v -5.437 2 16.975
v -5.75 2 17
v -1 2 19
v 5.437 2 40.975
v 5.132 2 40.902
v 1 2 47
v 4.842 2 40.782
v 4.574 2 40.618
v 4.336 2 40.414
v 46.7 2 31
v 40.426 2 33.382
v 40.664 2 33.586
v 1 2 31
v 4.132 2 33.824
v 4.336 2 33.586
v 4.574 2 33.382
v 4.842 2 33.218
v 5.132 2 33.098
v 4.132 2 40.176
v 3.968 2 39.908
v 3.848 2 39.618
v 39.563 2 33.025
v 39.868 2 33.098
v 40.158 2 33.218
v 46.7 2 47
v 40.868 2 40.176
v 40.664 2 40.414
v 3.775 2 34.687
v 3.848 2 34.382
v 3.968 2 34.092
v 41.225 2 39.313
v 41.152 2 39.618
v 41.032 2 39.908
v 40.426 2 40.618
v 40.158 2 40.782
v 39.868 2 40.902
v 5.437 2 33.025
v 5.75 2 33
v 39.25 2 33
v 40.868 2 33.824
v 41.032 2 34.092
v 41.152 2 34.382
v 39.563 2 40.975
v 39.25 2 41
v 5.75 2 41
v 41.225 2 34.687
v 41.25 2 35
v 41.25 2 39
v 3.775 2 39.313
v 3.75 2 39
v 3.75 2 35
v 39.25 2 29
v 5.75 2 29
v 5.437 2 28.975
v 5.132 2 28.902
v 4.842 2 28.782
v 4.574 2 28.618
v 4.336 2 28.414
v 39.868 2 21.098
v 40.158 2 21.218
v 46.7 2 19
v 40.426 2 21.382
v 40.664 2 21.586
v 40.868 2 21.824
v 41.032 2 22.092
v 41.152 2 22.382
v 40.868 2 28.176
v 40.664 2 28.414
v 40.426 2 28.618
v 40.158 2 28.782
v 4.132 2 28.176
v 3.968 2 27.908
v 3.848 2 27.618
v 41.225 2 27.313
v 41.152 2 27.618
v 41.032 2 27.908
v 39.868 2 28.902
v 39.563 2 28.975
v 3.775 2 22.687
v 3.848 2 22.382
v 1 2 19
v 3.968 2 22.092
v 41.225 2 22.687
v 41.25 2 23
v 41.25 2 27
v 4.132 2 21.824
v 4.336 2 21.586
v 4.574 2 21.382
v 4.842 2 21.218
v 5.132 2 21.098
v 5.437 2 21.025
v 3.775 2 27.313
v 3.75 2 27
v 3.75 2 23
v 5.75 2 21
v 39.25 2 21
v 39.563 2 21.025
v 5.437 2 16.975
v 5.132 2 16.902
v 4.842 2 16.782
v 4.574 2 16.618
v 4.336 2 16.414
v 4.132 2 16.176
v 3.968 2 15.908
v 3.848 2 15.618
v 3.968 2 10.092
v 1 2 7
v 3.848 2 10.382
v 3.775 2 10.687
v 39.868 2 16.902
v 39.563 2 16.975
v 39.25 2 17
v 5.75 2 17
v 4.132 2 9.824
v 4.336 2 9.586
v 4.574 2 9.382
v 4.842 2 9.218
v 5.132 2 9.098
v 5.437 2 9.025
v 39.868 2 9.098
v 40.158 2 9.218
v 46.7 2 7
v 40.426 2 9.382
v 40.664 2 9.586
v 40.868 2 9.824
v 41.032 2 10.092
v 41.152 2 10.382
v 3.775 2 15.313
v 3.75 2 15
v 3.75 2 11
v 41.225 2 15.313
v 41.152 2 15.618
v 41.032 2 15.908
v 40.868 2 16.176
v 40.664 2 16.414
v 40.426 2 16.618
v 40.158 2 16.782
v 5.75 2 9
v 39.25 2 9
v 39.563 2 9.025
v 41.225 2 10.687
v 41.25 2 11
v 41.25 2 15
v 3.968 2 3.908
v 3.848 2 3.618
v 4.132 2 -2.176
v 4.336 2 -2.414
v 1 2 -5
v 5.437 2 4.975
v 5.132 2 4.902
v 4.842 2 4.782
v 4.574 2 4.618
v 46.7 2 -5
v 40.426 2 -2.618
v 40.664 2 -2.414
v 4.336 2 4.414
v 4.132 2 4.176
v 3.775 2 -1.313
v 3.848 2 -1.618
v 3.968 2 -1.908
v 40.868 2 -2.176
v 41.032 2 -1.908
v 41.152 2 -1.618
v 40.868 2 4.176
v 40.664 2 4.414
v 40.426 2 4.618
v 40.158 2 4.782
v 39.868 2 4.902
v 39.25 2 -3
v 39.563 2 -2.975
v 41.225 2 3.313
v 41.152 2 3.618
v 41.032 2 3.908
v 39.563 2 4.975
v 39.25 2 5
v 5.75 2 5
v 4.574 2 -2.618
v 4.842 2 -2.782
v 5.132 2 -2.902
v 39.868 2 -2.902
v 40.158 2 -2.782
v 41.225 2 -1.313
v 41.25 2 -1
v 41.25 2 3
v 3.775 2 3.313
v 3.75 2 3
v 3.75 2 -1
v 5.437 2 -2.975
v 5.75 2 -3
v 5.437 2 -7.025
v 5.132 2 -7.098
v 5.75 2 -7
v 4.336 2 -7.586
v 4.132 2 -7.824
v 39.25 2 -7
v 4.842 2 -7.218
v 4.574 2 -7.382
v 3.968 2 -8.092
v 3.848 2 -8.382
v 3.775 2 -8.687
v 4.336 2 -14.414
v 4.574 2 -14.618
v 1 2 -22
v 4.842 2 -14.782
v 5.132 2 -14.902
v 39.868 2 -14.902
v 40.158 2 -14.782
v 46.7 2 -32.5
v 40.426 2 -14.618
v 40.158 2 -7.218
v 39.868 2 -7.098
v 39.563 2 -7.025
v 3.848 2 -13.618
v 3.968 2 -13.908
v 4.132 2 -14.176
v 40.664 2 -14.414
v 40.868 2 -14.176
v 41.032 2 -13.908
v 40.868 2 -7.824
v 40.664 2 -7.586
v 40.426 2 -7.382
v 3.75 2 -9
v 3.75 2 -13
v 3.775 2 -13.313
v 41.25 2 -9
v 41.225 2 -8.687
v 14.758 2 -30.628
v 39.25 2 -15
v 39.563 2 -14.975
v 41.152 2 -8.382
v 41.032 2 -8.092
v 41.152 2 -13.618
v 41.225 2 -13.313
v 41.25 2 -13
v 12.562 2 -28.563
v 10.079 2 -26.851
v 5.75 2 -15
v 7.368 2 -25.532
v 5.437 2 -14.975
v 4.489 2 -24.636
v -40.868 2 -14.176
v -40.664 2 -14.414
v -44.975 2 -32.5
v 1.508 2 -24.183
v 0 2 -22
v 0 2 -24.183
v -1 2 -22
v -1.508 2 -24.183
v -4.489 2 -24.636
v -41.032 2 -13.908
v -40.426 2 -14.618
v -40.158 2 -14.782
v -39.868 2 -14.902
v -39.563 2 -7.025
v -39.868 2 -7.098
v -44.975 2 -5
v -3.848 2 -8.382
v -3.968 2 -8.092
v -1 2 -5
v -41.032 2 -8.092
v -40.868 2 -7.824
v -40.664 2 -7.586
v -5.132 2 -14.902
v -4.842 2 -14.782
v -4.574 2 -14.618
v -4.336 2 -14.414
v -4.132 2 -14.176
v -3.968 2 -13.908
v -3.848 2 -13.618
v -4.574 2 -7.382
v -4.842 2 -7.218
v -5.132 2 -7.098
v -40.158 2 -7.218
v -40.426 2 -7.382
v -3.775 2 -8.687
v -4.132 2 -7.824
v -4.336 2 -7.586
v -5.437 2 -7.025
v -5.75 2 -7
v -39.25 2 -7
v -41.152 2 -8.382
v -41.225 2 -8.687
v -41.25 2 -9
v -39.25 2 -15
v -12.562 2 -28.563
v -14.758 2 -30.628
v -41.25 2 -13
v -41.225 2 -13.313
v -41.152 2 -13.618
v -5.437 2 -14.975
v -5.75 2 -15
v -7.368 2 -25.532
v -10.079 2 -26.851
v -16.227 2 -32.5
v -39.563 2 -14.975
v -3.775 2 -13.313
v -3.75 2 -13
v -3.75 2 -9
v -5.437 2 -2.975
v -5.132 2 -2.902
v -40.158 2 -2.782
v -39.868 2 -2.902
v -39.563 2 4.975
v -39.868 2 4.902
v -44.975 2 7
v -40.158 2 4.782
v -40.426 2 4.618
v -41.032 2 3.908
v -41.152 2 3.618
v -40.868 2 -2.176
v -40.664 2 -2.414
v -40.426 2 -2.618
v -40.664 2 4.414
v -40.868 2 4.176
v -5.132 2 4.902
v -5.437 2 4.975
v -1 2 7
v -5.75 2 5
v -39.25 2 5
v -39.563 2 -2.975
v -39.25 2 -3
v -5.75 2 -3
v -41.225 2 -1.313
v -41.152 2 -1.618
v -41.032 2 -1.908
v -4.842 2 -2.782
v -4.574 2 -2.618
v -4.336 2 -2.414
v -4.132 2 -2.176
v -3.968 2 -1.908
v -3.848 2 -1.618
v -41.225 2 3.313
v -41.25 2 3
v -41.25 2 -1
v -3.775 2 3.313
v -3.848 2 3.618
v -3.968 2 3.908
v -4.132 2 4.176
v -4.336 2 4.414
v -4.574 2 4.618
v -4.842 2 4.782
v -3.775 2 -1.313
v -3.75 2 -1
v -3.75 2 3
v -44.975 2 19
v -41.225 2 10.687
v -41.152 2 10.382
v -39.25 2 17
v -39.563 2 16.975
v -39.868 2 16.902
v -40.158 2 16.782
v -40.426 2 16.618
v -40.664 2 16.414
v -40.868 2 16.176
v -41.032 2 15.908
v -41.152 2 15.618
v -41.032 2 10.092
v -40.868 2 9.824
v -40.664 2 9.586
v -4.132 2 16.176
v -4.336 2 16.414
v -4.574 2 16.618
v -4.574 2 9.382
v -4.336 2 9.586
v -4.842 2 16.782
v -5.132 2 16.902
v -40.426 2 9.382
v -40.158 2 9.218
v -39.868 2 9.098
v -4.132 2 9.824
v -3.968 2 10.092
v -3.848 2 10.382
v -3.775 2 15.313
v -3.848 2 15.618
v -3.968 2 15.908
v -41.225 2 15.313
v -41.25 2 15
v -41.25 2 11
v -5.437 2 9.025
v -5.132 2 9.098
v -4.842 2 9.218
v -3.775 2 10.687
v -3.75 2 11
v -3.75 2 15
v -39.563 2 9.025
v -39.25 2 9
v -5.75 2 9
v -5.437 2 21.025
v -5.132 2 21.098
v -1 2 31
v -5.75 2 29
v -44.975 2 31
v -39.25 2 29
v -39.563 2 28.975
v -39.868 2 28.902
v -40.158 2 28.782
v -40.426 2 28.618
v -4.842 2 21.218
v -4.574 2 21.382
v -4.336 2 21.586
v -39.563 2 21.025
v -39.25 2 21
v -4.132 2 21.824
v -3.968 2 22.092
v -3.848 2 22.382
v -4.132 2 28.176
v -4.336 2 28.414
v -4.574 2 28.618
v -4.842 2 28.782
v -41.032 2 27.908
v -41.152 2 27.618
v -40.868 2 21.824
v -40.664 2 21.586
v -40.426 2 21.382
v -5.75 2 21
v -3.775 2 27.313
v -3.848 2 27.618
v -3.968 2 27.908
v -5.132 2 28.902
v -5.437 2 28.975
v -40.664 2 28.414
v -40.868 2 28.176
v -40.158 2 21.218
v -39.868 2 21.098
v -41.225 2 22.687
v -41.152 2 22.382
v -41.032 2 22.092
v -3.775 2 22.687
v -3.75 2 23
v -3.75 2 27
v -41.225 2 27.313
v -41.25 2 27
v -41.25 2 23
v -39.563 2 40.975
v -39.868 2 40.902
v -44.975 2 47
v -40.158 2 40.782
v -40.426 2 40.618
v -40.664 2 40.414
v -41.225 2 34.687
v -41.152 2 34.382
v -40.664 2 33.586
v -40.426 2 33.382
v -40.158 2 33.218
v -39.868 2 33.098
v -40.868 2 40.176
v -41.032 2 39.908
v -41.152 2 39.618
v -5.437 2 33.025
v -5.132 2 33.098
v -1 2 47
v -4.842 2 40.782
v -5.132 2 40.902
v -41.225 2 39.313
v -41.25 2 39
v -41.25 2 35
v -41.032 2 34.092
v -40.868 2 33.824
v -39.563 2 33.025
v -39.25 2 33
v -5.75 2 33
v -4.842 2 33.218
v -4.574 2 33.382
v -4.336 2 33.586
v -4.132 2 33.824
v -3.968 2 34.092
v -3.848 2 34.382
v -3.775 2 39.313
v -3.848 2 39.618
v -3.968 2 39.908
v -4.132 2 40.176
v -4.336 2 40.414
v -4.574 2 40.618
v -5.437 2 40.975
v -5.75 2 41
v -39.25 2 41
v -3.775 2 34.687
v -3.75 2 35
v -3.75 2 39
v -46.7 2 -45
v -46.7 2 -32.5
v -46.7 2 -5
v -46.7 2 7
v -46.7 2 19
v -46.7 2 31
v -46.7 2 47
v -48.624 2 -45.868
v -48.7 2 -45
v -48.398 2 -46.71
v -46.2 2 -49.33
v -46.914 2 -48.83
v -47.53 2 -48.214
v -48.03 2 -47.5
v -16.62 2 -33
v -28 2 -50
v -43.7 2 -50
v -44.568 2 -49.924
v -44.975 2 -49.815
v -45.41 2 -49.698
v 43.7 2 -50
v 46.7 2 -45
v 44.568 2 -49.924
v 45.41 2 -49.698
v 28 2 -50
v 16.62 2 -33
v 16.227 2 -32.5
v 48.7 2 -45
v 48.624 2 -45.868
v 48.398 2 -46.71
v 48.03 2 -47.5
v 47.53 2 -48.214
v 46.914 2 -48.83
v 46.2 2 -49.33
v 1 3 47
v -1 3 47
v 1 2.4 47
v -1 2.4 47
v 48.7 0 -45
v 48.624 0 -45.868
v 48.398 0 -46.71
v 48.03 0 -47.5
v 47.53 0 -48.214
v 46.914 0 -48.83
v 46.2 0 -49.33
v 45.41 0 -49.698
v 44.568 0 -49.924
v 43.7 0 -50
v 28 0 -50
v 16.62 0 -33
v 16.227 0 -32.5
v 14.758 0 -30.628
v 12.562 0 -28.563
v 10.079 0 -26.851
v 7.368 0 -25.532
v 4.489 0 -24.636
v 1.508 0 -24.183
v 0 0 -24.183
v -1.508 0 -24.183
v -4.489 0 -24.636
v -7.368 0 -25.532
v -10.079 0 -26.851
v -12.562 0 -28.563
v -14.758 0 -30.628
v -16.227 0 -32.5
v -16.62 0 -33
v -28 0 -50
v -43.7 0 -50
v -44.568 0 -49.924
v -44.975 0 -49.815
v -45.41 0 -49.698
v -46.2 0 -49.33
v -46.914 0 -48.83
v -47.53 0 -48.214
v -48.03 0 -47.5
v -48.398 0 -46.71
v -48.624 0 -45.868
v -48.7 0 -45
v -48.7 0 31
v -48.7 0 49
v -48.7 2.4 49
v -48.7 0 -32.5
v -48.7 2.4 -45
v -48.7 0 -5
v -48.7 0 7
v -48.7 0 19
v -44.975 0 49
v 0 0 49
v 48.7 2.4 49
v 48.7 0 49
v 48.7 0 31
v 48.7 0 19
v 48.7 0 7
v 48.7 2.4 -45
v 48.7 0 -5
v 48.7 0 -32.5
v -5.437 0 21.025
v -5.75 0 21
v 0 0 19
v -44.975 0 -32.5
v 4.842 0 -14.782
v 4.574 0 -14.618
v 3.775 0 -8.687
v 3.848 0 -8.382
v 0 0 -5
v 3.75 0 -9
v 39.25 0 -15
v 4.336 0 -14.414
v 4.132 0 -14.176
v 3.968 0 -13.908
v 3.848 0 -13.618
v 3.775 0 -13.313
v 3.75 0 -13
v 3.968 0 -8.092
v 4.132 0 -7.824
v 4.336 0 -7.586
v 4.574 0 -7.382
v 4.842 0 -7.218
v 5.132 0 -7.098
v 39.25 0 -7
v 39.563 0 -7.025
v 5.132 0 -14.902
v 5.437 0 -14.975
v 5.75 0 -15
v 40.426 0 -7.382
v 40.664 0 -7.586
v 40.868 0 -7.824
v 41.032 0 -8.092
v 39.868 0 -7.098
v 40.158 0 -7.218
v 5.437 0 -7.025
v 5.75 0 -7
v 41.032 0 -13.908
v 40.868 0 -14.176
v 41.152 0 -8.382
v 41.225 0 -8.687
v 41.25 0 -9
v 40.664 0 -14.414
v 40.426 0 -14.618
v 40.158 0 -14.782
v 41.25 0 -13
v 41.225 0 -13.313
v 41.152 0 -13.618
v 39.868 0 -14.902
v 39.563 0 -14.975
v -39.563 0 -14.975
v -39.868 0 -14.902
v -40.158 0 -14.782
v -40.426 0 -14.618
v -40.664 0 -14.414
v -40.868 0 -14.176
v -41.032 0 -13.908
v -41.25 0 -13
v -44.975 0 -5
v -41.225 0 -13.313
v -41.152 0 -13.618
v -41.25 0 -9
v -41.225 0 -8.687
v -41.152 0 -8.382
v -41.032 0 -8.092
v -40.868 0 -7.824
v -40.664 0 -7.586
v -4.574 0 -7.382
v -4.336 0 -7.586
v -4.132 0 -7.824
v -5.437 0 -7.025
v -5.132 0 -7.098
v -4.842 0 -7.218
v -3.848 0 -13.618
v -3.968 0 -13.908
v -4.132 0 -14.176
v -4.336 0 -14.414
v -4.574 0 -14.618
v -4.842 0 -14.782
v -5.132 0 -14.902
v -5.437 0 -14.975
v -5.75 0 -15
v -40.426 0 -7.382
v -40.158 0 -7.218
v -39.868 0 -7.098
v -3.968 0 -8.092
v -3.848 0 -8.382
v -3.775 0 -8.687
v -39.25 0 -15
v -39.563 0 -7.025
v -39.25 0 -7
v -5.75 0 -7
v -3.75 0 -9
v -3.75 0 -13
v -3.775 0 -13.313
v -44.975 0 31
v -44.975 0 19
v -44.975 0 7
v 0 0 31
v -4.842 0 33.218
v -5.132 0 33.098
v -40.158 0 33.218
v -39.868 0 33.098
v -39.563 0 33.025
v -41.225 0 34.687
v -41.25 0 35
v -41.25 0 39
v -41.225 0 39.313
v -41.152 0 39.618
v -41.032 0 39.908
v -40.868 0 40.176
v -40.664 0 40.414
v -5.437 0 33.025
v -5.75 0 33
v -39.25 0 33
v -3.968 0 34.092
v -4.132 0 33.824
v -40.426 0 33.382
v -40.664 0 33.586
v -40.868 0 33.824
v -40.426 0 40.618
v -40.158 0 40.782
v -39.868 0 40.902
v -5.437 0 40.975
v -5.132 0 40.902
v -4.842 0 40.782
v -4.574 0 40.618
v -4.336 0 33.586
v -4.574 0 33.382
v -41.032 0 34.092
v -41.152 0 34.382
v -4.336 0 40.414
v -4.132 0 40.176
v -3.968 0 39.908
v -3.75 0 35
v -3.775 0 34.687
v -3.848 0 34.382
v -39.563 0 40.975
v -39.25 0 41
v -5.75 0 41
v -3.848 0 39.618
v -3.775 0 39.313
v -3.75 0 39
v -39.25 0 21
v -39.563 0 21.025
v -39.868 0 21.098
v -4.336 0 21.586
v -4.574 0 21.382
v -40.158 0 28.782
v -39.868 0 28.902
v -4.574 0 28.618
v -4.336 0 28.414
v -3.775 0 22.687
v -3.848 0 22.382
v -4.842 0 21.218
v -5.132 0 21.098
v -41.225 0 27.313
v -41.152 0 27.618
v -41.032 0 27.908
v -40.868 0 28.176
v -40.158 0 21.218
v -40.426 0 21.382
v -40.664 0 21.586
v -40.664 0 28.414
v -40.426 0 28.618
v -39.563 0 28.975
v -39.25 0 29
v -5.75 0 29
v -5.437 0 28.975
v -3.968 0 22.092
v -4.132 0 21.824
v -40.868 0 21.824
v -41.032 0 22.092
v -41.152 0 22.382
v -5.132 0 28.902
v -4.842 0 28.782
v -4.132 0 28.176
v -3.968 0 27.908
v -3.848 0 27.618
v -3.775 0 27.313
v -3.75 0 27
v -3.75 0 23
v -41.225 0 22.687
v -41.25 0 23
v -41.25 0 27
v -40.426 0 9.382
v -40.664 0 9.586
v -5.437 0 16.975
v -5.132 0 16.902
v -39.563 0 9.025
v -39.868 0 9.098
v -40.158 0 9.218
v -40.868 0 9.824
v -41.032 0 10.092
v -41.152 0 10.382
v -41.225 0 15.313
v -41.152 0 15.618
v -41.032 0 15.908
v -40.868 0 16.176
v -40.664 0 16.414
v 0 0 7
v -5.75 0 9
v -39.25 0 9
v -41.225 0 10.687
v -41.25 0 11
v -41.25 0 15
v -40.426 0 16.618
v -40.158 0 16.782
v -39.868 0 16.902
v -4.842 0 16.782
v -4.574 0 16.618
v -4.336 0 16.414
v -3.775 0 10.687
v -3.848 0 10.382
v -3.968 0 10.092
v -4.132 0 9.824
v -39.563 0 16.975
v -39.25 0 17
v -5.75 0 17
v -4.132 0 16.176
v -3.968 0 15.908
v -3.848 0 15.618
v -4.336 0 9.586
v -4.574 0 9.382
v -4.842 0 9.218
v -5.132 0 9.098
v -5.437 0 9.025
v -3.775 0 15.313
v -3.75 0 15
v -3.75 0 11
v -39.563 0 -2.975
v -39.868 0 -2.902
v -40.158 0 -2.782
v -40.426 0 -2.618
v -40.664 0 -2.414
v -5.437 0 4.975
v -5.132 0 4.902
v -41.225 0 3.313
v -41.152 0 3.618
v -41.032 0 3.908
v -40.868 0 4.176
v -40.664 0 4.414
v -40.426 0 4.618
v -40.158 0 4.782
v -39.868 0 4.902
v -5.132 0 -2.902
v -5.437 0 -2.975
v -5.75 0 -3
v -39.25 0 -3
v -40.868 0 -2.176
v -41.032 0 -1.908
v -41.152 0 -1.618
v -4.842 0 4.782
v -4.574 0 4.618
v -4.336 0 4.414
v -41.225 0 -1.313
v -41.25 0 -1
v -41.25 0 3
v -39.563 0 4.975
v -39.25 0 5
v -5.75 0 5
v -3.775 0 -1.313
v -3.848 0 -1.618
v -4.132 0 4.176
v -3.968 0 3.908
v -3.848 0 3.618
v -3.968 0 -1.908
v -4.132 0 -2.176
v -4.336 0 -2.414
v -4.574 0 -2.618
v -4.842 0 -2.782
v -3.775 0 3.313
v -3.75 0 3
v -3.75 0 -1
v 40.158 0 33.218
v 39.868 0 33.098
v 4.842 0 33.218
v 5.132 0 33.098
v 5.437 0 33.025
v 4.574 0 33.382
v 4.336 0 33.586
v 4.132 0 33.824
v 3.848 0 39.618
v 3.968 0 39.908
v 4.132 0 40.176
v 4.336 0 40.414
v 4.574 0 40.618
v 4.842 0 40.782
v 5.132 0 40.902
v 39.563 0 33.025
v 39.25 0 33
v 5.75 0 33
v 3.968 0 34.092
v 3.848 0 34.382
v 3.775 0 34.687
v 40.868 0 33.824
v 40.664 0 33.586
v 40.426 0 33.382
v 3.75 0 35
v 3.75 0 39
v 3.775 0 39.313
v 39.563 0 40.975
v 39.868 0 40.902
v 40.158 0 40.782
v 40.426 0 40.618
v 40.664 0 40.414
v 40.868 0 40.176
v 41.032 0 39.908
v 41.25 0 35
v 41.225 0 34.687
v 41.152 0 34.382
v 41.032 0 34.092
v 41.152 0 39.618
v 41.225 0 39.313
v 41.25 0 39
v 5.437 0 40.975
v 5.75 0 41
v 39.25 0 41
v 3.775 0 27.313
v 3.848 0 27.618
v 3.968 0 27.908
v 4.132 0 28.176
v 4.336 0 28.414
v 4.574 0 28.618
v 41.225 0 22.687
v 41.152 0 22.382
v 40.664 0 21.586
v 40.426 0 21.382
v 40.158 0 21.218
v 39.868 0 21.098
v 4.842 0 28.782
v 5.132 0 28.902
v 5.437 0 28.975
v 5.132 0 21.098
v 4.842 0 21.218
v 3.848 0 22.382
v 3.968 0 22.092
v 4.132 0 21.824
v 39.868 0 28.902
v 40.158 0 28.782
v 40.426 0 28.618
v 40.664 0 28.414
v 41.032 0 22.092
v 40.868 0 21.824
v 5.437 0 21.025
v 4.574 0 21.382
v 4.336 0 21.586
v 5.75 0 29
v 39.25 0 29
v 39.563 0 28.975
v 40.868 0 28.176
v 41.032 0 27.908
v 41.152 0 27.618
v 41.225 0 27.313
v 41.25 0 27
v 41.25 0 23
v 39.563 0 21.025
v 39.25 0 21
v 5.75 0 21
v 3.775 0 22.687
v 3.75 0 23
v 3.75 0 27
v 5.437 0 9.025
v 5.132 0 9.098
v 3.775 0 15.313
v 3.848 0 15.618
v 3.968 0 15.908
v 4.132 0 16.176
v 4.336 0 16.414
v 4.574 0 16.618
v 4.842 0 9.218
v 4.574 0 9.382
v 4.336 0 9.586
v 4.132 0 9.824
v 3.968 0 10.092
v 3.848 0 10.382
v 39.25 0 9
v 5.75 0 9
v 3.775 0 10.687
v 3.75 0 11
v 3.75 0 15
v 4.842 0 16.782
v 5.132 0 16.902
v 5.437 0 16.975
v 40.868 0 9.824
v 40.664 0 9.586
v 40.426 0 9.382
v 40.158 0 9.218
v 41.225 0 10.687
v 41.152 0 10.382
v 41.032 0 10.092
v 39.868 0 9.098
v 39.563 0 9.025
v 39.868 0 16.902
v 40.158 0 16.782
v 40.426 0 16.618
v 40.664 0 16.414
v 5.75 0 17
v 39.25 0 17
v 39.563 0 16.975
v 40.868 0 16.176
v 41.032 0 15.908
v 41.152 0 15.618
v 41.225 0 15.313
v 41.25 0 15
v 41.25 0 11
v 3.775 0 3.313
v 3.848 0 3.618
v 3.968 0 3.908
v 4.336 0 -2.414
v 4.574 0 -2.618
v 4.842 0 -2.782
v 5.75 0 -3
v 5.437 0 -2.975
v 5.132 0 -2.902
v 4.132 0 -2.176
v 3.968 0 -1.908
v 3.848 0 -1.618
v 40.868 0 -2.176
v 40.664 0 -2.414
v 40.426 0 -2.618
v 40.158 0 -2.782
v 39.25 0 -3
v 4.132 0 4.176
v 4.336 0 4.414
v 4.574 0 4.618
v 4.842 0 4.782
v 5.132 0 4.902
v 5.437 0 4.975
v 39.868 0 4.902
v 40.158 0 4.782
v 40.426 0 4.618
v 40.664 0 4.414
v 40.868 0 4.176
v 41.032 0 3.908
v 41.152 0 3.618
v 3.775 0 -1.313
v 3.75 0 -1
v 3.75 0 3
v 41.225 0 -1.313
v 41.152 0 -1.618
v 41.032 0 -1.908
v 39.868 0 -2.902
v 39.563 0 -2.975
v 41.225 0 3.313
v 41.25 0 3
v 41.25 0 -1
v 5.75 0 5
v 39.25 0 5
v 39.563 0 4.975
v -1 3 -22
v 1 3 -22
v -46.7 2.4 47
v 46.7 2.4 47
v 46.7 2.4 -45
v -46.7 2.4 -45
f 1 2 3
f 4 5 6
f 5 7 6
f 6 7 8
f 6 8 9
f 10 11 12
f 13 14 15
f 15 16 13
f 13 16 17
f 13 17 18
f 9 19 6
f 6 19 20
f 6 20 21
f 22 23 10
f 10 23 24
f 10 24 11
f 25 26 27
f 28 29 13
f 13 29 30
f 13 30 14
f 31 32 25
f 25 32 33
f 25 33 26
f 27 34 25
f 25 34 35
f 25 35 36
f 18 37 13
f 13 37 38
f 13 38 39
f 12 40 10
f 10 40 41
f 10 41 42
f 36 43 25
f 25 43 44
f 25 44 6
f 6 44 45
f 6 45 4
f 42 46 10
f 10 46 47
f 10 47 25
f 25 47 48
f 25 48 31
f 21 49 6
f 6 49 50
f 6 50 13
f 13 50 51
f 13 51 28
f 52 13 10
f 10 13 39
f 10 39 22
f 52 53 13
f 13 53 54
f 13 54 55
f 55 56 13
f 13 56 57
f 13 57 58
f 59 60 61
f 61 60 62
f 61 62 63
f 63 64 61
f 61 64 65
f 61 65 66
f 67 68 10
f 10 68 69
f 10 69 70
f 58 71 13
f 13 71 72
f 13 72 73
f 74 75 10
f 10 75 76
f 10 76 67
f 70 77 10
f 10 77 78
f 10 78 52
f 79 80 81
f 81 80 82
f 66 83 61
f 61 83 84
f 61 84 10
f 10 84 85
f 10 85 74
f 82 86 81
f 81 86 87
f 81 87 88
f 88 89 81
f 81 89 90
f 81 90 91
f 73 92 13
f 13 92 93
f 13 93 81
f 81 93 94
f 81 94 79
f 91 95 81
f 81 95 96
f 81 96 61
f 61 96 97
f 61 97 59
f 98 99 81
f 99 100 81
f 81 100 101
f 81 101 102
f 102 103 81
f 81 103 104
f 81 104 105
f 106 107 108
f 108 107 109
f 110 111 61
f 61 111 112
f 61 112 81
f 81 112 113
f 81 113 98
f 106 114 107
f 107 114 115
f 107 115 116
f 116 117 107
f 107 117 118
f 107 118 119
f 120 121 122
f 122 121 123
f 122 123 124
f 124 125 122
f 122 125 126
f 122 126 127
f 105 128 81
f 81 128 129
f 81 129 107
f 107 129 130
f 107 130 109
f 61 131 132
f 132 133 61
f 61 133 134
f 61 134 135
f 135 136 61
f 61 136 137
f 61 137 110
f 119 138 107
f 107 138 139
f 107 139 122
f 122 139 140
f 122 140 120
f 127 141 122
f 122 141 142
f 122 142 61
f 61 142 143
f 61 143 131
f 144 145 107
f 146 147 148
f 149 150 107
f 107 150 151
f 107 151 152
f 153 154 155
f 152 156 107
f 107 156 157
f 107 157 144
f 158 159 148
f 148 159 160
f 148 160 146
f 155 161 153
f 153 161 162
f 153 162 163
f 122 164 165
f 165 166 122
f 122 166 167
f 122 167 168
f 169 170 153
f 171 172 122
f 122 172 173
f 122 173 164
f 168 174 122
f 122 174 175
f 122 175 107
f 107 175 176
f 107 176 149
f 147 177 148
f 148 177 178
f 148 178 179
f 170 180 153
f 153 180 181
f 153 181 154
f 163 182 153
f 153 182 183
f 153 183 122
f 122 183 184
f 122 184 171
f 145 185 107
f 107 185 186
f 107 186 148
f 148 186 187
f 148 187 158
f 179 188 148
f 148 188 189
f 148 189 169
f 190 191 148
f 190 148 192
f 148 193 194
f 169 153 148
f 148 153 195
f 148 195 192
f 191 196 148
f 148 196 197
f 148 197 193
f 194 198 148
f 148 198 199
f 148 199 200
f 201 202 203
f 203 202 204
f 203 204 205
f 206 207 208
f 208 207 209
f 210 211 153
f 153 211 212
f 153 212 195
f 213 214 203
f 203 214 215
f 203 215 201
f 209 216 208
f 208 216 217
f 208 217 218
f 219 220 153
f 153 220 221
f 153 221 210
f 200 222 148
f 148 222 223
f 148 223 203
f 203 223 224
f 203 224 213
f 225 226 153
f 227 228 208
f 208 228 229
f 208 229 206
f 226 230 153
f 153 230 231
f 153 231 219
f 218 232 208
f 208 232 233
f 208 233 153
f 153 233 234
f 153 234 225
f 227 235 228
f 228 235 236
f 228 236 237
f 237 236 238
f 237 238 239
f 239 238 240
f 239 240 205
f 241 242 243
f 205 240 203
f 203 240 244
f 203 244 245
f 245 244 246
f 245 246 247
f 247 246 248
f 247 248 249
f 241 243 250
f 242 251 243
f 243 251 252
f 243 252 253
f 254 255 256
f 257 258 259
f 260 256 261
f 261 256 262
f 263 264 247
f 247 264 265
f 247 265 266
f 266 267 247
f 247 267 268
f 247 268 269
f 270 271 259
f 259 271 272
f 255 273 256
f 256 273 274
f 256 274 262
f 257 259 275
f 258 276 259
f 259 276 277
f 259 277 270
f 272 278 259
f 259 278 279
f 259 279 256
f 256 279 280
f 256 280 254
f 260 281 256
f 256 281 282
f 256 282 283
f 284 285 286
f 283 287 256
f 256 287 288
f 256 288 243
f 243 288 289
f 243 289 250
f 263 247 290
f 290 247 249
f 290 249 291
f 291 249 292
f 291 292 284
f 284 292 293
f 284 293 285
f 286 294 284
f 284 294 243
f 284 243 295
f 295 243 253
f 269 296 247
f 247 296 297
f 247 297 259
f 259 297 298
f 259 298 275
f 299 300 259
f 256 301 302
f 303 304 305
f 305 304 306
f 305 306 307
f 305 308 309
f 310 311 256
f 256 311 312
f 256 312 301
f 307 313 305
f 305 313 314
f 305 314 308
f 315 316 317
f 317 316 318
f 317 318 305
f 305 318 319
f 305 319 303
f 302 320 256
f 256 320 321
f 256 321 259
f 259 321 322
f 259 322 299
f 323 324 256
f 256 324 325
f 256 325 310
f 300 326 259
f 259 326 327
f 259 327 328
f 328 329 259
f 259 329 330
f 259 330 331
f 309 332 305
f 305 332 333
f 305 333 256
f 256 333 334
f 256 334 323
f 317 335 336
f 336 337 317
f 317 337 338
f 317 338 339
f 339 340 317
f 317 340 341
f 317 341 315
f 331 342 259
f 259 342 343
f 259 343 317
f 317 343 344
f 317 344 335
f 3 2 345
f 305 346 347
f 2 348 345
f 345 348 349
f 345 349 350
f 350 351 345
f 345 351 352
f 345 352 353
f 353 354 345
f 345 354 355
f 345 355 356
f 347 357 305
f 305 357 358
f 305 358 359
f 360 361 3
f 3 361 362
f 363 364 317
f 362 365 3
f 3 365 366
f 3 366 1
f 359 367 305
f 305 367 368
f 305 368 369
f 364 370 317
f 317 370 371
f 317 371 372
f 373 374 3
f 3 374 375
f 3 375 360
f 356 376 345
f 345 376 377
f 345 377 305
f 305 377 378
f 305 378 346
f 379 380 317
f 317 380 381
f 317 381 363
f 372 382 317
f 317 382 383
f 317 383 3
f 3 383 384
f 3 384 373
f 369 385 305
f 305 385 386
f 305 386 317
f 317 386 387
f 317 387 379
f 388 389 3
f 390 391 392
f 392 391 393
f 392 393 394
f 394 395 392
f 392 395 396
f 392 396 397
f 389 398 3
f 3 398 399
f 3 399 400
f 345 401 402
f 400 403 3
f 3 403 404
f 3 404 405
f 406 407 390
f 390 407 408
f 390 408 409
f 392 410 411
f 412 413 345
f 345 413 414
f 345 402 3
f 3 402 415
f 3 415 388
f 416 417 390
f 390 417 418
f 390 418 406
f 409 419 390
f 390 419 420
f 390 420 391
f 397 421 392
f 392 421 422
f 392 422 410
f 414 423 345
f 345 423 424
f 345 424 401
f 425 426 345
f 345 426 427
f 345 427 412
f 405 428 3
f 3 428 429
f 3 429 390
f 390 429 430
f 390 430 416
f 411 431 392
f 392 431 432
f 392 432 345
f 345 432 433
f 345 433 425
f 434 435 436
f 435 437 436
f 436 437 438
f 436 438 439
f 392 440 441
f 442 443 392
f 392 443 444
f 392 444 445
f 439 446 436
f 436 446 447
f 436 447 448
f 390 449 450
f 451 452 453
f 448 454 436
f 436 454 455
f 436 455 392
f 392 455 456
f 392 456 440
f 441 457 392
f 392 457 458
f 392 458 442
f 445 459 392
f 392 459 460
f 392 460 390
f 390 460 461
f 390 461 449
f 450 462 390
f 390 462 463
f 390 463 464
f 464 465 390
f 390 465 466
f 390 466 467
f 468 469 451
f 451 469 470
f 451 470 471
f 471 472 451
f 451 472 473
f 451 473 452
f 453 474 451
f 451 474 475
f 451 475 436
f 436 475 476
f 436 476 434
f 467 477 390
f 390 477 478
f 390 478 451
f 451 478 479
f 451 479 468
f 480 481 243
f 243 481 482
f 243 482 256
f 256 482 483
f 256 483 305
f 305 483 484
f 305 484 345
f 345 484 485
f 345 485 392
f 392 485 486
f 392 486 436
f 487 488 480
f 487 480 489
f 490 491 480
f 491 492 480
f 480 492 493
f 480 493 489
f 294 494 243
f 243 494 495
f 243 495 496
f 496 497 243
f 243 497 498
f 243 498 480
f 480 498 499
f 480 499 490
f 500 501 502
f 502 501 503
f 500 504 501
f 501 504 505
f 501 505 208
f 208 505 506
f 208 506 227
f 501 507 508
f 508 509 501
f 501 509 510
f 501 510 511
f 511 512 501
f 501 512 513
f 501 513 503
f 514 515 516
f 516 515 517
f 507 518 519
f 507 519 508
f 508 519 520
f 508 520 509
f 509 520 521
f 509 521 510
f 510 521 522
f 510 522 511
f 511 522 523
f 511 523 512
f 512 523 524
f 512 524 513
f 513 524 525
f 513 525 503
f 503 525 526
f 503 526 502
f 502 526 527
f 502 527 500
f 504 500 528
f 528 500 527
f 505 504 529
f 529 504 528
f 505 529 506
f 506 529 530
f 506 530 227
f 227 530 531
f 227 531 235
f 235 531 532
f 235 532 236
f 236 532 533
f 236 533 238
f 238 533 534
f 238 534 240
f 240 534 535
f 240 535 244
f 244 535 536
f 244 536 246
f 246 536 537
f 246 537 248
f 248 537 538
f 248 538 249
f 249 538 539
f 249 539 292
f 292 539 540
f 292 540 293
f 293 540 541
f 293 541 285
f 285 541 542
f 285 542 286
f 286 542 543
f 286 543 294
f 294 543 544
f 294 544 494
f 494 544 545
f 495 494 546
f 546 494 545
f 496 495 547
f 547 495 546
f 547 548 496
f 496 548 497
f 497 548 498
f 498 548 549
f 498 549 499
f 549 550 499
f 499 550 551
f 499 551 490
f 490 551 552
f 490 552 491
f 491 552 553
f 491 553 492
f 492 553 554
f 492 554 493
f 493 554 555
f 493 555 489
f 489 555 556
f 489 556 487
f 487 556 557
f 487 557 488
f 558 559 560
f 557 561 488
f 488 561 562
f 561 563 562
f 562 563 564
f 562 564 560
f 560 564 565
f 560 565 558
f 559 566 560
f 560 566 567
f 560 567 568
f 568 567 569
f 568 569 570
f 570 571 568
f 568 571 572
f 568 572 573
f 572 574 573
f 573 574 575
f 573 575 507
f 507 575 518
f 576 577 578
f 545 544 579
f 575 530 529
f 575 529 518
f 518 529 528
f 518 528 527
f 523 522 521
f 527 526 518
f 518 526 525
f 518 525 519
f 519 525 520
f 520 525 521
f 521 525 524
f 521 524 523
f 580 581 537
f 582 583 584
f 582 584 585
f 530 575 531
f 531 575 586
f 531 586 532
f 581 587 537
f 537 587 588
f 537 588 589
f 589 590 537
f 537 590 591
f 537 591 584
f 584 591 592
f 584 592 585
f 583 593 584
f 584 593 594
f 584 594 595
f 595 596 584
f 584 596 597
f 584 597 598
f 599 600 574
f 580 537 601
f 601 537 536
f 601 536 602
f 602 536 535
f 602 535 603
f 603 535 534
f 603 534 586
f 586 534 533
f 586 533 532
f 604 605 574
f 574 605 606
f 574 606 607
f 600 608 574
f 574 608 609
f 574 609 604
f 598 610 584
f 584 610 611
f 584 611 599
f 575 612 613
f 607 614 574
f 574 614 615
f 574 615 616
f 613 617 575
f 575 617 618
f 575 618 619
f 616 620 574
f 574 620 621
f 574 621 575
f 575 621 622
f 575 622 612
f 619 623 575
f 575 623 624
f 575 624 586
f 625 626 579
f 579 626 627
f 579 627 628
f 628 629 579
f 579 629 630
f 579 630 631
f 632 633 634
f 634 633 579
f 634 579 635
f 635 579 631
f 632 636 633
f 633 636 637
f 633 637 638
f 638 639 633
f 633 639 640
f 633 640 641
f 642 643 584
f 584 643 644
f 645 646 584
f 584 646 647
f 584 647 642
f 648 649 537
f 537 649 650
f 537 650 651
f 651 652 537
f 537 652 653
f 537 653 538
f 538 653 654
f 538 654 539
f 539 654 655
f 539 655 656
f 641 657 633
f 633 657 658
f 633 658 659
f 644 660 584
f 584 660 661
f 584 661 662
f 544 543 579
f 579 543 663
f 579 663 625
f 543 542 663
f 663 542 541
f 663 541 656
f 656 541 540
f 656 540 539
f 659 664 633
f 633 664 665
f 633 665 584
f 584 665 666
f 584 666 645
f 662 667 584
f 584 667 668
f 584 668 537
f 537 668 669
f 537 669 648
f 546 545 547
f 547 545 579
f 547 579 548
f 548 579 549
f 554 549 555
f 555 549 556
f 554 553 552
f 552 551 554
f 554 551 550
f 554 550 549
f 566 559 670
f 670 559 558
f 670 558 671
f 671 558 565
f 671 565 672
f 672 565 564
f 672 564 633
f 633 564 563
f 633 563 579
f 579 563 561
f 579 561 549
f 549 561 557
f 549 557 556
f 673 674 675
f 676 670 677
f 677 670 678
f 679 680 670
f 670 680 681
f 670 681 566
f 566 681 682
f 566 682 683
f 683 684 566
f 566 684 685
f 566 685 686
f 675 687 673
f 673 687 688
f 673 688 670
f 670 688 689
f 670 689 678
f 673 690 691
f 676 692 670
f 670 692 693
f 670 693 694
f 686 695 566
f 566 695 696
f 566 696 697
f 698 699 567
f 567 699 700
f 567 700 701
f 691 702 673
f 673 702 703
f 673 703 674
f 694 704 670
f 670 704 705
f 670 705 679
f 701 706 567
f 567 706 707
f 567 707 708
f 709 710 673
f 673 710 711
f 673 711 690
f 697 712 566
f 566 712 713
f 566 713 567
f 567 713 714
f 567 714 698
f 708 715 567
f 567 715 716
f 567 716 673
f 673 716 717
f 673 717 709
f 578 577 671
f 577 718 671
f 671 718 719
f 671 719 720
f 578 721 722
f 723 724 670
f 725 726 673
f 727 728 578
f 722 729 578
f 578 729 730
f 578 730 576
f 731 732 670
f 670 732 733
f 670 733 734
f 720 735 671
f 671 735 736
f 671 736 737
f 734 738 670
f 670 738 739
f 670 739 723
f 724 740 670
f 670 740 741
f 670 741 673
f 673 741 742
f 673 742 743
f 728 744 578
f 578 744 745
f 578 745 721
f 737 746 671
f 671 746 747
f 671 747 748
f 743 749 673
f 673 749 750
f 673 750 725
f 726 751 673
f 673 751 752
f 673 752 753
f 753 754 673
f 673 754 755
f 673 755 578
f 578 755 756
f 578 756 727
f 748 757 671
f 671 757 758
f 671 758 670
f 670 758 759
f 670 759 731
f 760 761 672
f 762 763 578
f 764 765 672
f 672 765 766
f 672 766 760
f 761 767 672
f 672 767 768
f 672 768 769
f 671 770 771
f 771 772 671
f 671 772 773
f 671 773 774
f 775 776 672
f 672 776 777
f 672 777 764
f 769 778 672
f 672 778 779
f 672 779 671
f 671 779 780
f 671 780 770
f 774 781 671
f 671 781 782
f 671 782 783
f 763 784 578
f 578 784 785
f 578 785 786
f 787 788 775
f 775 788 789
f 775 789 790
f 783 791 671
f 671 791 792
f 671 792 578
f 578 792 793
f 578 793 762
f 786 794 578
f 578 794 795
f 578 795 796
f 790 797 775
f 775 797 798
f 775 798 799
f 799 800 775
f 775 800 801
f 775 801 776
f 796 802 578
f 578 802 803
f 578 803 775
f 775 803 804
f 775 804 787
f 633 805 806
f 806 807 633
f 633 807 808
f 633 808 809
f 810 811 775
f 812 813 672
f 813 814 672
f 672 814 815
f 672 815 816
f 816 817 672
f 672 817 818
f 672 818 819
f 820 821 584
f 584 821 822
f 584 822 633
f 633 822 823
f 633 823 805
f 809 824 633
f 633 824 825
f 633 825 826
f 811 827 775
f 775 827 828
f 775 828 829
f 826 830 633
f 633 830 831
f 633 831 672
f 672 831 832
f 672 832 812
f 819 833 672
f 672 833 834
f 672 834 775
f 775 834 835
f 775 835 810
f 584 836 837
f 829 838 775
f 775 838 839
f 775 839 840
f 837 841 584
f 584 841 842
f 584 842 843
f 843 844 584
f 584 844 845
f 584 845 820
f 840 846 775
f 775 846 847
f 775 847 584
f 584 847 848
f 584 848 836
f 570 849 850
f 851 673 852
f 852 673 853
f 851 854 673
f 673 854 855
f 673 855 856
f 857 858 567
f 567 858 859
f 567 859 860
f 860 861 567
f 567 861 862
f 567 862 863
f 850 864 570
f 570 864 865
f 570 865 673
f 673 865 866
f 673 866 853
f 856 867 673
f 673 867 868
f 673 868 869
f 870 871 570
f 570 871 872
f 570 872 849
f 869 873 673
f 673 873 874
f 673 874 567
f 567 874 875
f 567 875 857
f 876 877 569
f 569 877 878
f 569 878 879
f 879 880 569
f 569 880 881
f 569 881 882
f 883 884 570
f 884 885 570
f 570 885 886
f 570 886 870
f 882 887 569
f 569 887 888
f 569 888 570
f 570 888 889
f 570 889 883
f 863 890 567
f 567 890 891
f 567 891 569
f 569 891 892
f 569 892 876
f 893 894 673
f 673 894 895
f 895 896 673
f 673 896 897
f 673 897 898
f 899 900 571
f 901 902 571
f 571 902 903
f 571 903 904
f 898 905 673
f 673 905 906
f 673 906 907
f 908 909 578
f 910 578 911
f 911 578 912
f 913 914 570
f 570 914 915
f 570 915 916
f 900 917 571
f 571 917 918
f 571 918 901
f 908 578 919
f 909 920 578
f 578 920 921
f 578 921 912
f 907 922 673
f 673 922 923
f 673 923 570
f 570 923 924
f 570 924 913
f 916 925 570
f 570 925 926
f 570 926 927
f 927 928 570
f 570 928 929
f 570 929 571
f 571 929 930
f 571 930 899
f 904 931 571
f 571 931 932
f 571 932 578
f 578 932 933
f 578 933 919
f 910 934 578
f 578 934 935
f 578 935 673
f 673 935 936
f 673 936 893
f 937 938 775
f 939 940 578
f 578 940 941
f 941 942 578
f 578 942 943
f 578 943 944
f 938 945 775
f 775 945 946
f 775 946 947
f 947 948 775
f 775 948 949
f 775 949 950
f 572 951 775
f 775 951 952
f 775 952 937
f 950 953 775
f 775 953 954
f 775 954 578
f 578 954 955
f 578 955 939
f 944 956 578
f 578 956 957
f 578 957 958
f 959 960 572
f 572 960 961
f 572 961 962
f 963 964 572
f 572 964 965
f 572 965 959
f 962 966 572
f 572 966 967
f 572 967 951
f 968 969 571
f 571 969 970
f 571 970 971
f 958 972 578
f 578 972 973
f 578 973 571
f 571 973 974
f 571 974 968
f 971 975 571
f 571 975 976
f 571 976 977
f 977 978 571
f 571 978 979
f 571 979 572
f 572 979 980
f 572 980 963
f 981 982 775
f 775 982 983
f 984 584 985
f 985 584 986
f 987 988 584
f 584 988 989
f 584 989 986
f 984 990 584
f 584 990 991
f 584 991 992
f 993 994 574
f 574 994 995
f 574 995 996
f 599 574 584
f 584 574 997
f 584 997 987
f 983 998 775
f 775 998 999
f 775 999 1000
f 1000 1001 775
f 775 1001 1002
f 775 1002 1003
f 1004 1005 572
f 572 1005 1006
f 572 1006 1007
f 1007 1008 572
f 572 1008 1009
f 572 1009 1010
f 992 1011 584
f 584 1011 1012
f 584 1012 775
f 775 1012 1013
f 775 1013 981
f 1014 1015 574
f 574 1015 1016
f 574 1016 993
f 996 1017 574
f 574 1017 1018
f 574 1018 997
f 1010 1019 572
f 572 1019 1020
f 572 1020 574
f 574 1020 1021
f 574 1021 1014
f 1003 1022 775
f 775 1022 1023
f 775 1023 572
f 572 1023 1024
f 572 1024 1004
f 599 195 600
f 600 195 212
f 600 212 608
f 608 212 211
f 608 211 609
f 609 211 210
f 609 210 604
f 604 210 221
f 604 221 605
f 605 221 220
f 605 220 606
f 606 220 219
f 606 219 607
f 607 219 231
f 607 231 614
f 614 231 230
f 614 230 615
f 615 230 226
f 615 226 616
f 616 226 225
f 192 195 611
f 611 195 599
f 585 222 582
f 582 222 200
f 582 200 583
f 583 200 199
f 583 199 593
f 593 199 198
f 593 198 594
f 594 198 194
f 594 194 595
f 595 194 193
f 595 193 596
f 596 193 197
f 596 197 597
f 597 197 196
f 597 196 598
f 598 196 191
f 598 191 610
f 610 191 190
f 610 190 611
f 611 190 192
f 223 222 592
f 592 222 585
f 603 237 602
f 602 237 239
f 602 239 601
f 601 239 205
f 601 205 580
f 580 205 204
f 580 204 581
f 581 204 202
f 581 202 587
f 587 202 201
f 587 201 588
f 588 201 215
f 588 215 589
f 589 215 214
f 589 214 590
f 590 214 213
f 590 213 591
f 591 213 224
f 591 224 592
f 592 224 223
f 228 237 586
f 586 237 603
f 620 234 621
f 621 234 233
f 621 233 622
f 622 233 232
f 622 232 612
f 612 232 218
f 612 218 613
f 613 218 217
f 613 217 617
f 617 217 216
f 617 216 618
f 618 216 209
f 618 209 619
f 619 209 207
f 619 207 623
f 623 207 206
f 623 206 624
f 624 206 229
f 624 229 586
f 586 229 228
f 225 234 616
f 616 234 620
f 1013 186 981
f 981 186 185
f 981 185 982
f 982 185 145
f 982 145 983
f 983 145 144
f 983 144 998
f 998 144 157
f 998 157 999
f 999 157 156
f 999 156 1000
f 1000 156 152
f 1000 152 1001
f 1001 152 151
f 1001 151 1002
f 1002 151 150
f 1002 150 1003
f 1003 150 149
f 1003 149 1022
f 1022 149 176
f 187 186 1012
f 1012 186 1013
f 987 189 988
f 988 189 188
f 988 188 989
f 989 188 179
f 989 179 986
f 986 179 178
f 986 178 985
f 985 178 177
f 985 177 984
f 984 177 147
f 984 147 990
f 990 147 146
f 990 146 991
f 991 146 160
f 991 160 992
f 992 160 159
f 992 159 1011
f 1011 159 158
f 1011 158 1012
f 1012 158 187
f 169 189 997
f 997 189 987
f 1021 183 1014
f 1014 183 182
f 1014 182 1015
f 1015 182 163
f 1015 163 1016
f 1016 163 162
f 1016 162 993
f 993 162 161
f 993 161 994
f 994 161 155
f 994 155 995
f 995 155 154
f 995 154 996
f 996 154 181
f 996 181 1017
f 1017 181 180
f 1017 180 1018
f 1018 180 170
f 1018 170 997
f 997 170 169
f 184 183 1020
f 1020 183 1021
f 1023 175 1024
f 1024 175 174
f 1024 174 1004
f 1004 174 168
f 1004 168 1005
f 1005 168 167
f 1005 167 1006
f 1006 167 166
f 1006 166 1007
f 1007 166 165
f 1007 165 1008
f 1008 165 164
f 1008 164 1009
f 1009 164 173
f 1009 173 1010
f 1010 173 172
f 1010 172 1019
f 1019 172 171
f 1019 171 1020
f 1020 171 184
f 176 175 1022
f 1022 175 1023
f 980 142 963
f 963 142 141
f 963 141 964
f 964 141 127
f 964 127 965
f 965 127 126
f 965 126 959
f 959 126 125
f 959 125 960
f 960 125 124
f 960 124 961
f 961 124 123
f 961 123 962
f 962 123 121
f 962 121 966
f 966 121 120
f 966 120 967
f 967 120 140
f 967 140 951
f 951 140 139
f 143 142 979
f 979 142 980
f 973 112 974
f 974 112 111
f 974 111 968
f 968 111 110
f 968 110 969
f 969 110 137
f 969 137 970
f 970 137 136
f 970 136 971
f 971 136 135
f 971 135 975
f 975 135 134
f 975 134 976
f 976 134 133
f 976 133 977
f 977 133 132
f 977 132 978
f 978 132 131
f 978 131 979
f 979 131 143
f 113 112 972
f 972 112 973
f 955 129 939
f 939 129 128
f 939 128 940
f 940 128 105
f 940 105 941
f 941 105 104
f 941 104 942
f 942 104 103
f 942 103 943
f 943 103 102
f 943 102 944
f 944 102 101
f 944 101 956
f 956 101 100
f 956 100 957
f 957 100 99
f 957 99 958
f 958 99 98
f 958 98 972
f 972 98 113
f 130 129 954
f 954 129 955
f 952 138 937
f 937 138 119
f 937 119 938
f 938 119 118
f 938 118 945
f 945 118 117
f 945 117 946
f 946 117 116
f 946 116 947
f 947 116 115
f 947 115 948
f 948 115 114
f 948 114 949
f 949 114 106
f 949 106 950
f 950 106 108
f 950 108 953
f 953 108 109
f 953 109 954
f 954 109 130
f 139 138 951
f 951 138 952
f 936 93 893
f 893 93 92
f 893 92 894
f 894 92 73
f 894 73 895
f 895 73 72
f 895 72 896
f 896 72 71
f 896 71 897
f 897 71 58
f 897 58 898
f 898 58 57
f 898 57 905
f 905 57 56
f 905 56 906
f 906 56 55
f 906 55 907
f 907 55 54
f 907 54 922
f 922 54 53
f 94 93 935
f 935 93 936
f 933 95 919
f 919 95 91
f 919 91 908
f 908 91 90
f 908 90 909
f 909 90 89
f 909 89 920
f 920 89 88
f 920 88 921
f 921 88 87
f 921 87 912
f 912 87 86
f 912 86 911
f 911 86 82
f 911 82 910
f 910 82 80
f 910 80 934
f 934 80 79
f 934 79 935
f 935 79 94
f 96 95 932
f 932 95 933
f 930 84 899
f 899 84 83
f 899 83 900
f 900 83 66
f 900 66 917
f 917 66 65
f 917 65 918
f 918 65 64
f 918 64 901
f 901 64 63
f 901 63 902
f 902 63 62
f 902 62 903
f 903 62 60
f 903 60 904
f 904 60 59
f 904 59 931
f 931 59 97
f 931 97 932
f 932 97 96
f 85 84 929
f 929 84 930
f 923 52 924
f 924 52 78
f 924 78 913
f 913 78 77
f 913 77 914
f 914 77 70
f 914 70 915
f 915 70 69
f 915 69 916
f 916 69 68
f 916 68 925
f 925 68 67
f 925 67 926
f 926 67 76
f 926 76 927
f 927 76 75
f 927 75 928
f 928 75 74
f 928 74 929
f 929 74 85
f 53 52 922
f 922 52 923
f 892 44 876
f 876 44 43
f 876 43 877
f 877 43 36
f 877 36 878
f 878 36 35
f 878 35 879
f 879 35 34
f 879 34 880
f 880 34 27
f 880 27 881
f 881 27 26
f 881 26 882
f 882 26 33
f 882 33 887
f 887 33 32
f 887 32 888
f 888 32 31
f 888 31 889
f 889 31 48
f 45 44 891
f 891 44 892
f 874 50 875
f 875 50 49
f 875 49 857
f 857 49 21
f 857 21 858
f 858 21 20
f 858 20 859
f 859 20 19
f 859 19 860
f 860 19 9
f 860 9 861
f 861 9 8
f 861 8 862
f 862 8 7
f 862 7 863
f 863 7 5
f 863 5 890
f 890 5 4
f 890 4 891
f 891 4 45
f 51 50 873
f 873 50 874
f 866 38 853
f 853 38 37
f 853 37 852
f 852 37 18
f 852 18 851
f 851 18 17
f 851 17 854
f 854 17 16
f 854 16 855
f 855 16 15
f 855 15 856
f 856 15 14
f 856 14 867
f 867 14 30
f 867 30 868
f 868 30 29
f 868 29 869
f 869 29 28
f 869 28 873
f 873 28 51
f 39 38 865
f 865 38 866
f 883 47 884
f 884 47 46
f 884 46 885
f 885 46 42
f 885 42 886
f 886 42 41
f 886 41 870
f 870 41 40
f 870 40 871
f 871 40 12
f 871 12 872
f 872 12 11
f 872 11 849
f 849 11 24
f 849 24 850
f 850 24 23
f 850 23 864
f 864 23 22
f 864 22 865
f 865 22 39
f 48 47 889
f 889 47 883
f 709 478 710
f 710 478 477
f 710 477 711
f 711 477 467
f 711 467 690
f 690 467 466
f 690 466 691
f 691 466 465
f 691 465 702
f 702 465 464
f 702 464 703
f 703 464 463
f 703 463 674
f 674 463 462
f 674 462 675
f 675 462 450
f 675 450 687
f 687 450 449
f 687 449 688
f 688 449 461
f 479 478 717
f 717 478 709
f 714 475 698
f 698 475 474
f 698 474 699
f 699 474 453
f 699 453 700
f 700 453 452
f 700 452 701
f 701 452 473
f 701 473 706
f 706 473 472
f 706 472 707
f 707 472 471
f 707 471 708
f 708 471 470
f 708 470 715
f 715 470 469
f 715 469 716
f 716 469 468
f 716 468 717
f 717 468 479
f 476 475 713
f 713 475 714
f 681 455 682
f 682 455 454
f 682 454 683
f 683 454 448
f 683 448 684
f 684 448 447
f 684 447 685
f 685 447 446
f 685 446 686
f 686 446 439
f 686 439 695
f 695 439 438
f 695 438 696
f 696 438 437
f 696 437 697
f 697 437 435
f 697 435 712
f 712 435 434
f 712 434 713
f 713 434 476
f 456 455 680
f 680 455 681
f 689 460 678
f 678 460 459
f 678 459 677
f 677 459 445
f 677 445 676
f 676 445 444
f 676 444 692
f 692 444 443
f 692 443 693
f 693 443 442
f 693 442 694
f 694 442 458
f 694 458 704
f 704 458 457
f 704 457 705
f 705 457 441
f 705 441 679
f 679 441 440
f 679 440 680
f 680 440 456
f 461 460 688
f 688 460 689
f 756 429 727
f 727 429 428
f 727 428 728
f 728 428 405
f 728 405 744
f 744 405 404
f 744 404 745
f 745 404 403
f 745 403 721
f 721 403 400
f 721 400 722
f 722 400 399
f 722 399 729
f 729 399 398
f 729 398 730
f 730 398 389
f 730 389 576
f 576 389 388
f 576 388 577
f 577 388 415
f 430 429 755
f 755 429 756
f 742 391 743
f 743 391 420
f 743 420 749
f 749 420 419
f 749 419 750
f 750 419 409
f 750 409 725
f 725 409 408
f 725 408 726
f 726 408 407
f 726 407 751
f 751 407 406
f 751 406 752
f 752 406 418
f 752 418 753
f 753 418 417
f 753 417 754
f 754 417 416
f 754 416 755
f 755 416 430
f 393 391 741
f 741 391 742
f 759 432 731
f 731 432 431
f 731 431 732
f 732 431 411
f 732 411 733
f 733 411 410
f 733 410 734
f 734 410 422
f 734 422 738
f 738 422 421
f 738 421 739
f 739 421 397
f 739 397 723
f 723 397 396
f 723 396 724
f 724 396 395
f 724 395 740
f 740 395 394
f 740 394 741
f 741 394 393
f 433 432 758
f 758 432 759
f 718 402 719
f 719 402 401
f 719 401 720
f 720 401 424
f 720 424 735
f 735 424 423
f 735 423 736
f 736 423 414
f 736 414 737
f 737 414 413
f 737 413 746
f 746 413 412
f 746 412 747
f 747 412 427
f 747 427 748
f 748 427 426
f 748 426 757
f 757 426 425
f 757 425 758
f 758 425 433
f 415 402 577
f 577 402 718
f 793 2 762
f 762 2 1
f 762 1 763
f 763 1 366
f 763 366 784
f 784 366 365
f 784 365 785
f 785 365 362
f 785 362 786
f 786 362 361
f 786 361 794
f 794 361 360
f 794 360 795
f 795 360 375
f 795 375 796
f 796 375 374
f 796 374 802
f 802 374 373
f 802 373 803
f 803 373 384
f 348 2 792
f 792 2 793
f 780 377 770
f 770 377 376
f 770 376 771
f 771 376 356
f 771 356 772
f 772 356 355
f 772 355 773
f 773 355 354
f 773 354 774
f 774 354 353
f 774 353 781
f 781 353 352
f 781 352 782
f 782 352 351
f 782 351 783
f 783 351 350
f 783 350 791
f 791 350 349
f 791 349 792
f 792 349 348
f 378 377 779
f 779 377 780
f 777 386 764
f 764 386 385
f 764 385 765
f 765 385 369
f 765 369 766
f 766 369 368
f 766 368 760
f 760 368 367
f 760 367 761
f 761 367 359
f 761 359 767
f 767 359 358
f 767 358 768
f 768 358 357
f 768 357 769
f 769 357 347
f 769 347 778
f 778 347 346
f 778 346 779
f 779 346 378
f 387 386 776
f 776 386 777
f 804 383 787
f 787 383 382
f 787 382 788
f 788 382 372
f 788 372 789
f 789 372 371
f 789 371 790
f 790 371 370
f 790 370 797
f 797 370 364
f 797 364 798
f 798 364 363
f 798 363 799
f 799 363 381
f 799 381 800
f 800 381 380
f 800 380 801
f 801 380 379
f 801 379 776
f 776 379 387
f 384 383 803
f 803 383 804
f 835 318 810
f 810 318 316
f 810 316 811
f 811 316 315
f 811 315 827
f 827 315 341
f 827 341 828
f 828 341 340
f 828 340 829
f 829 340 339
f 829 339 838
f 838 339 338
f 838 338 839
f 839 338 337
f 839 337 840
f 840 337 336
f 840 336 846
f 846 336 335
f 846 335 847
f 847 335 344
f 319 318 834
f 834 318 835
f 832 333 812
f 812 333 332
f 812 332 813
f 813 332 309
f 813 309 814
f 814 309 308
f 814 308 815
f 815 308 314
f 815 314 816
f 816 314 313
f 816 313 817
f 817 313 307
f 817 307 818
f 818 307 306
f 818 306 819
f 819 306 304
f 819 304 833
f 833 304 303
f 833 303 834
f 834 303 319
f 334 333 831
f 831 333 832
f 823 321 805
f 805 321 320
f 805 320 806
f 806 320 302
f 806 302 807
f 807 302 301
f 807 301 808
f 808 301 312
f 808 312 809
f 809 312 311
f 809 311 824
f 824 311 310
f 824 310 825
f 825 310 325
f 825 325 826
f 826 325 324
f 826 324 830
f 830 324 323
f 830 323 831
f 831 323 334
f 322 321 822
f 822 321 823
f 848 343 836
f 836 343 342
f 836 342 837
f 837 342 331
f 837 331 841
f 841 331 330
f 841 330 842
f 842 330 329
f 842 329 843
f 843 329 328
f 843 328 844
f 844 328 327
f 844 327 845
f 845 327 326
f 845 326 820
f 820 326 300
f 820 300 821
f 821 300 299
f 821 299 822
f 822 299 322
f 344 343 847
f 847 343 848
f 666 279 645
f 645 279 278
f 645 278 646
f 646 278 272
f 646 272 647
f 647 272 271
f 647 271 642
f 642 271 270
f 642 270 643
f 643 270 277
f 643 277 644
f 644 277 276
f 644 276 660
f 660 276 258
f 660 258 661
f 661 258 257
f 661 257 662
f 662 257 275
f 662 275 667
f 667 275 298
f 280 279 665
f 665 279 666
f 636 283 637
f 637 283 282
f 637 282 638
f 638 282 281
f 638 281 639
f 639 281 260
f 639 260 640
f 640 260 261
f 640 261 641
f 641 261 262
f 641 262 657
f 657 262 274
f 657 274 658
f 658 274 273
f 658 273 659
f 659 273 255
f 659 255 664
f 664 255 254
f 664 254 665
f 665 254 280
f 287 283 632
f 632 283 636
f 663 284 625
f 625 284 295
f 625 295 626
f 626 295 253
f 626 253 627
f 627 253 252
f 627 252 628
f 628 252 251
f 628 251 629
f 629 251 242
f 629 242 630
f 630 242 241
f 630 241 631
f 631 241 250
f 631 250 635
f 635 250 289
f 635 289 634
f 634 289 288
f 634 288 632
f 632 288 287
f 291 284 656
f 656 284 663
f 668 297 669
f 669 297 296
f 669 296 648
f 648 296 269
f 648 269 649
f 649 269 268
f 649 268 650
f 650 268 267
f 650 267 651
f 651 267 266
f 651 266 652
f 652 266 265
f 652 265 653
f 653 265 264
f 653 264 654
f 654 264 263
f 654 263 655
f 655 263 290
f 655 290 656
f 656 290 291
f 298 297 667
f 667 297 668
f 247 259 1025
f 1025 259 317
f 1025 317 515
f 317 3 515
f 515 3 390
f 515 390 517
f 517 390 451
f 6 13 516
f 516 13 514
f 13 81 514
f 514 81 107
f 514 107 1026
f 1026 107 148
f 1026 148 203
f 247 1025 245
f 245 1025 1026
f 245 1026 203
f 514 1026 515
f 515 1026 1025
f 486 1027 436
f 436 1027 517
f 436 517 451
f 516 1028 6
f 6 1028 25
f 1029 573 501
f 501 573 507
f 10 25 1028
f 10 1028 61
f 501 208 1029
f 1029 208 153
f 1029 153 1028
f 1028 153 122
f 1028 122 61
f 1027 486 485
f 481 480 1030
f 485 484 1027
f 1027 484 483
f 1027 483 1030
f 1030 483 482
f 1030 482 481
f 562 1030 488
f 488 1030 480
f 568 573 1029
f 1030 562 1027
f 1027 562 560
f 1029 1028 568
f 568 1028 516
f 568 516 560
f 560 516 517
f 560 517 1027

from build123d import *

# Parameters (mm, degrees)
GRUNDK_RPER_DEPTH  = 2
L_FTUNGEN_DEPTH    = 2
SKIZZE4_W          = 2
SKIZZE4_H          = 69
STREBE_DEPTH       = 1
STREBE_AU_EN_DEPTH = 0.4


with BuildPart() as part:
    # Skizze2 → Grundkörper (new body)
    with BuildSketch(Plane(origin=(0, 0, 0), x_dir=(1, 0, 0), z_dir=(0, 1, 0))):
        with BuildLine():
            Line((-43.7, 50), (-28, 50))
            Line((-28, 50), (-16.61985221, 33))
            ThreePointArc((-16.61985221, 33), (0, 24.125669082), (16.61985221, 33))
            Line((16.61985221, 33), (28, 50))
            Line((28, 50), (43.7, 50))
            ThreePointArc((43.7, 50), (47.235533906, 48.535533906), (48.7, 45))
            Line((48.7, 45), (48.7, -49))
            Line((48.7, -49), (-48.7, -49))
            Line((-48.7, -49), (-48.7, 45))
            ThreePointArc((-48.7, 45), (-47.235533906, 48.535533906), (-43.7, 50))
        make_face()
    extrude(amount=GRUNDK_RPER_DEPTH)

    # Skizze3 → Lüftungen (cut)
    with BuildSketch(Plane(origin=(0, 2, 0), x_dir=(1, 0, 0), z_dir=(0, 1, 0))):
        with BuildLine():
            Line((-39.25, 15), (-5.75, 15))
            ThreePointArc((-5.75, 15), (-4.335786438, 14.414213562), (-3.75, 13))
            Line((-3.75, 13), (-3.75, 9))
            ThreePointArc((-3.75, 9), (-4.335786438, 7.585786438), (-5.75, 7))
            Line((-5.75, 7), (-39.25, 7))
            ThreePointArc((-39.25, 7), (-40.664213562, 7.585786438), (-41.25, 9))
            Line((-41.25, 9), (-41.25, 13))
            ThreePointArc((-41.25, 13), (-40.664213562, 14.414213562), (-39.25, 15))
        make_face()
        with BuildLine():
            Line((3.75, 13), (3.75, 9))
            ThreePointArc((3.75, 9), (4.335786438, 7.585786438), (5.75, 7))
            Line((5.75, 7), (39.25, 7))
            ThreePointArc((39.25, 7), (40.664213562, 7.585786438), (41.25, 9))
            Line((41.25, 9), (41.25, 13))
            ThreePointArc((41.25, 13), (40.664213562, 14.414213562), (39.25, 15))
            Line((39.25, 15), (5.75, 15))
            ThreePointArc((5.75, 15), (4.335786438, 14.414213562), (3.75, 13))
        make_face()
        with BuildLine():
            Line((3.75, 1), (3.75, -3))
            ThreePointArc((3.75, -3), (4.335786438, -4.414213562), (5.75, -5))
            Line((5.75, -5), (39.25, -5))
            ThreePointArc((39.25, -5), (40.664213562, -4.414213562), (41.25, -3))
            Line((41.25, -3), (41.25, 1))
            ThreePointArc((41.25, 1), (40.664213562, 2.414213562), (39.25, 3))
            Line((39.25, 3), (5.75, 3))
            ThreePointArc((5.75, 3), (4.335786438, 2.414213562), (3.75, 1))
        make_face()
        with BuildLine():
            Line((3.75, -11), (3.75, -15))
            ThreePointArc((3.75, -15), (4.335786438, -16.414213562), (5.75, -17))
            Line((5.75, -17), (39.25, -17))
            ThreePointArc((39.25, -17), (40.664213562, -16.414213562), (41.25, -15))
            Line((41.25, -15), (41.25, -11))
            ThreePointArc((41.25, -11), (40.664213562, -9.585786438), (39.25, -9))
            Line((39.25, -9), (5.75, -9))
            ThreePointArc((5.75, -9), (4.335786438, -9.585786438), (3.75, -11))
        make_face()
        with BuildLine():
            Line((3.75, -23), (3.75, -27))
            ThreePointArc((3.75, -27), (4.335786438, -28.414213562), (5.75, -29))
            Line((5.75, -29), (39.25, -29))
            ThreePointArc((39.25, -29), (40.664213562, -28.414213562), (41.25, -27))
            Line((41.25, -27), (41.25, -23))
            ThreePointArc((41.25, -23), (40.664213562, -21.585786438), (39.25, -21))
            Line((39.25, -21), (5.75, -21))
            ThreePointArc((5.75, -21), (4.335786438, -21.585786438), (3.75, -23))
        make_face()
        with BuildLine():
            Line((3.75, -35), (3.75, -39))
            ThreePointArc((3.75, -39), (4.335786438, -40.414213562), (5.75, -41))
            Line((5.75, -41), (39.25, -41))
            ThreePointArc((39.25, -41), (40.664213562, -40.414213562), (41.25, -39))
            Line((41.25, -39), (41.25, -35))
            ThreePointArc((41.25, -35), (40.664213562, -33.585786438), (39.25, -33))
            Line((39.25, -33), (5.75, -33))
            ThreePointArc((5.75, -33), (4.335786438, -33.585786438), (3.75, -35))
        make_face()
        with BuildLine():
            Line((-41.25, 1), (-41.25, -3))
            ThreePointArc((-41.25, -3), (-40.664213562, -4.414213562), (-39.25, -5))
            Line((-39.25, -5), (-5.75, -5))
            ThreePointArc((-5.75, -5), (-4.335786438, -4.414213562), (-3.75, -3))
            Line((-3.75, -3), (-3.75, 1))
            ThreePointArc((-3.75, 1), (-4.335786438, 2.414213562), (-5.75, 3))
            Line((-5.75, 3), (-39.25, 3))
            ThreePointArc((-39.25, 3), (-40.664213562, 2.414213562), (-41.25, 1))
        make_face()
        with BuildLine():
            Line((-41.25, -11), (-41.25, -15))
            ThreePointArc((-41.25, -15), (-40.664213562, -16.414213562), (-39.25, -17))
            Line((-39.25, -17), (-5.75, -17))
            ThreePointArc((-5.75, -17), (-4.335786438, -16.414213562), (-3.75, -15))
            Line((-3.75, -15), (-3.75, -11))
            ThreePointArc((-3.75, -11), (-4.335786438, -9.585786438), (-5.75, -9))
            Line((-5.75, -9), (-39.25, -9))
            ThreePointArc((-39.25, -9), (-40.664213562, -9.585786438), (-41.25, -11))
        make_face()
        with BuildLine():
            Line((-41.25, -23), (-41.25, -27))
            ThreePointArc((-41.25, -27), (-40.664213562, -28.414213562), (-39.25, -29))
            Line((-39.25, -29), (-5.75, -29))
            ThreePointArc((-5.75, -29), (-4.335786438, -28.414213562), (-3.75, -27))
            Line((-3.75, -27), (-3.75, -23))
            ThreePointArc((-3.75, -23), (-4.335786438, -21.585786438), (-5.75, -21))
            Line((-5.75, -21), (-39.25, -21))
            ThreePointArc((-39.25, -21), (-40.664213562, -21.585786438), (-41.25, -23))
        make_face()
        with BuildLine():
            Line((-41.25, -35), (-41.25, -39))
            ThreePointArc((-41.25, -39), (-40.664213562, -40.414213562), (-39.25, -41))
            Line((-39.25, -41), (-5.75, -41))
            ThreePointArc((-5.75, -41), (-4.335786438, -40.414213562), (-3.75, -39))
            Line((-3.75, -39), (-3.75, -35))
            ThreePointArc((-3.75, -35), (-4.335786438, -33.585786438), (-5.75, -33))
            Line((-5.75, -33), (-39.25, -33))
            ThreePointArc((-39.25, -33), (-40.664213562, -33.585786438), (-41.25, -35))
        make_face()
    extrude(amount=-L_FTUNGEN_DEPTH, mode=Mode.SUBTRACT)

    # Skizze4 → Strebe (add)
    with BuildSketch(Plane(origin=(0, 2, 0), x_dir=(1, 0, 0), z_dir=(0, 1, 0))):
        with Locations((0, -12.5)):
            Rectangle(SKIZZE4_W, SKIZZE4_H)
    extrude(amount=STREBE_DEPTH)

    # Skizze5 → Strebe außen (add)
    with BuildSketch(Plane(origin=(0, 2, 0), x_dir=(1, 0, 0), z_dir=(0, 1, 0))):
        Polygon((-48.7, 45), (-46.7, 45), (-46.7, -47), (46.7, -47), (46.7, 45), (48.7, 45), (48.7, -49), (-48.7, -49), align=None)
    extrude(amount=STREBE_AU_EN_DEPTH)


solid = part.part
